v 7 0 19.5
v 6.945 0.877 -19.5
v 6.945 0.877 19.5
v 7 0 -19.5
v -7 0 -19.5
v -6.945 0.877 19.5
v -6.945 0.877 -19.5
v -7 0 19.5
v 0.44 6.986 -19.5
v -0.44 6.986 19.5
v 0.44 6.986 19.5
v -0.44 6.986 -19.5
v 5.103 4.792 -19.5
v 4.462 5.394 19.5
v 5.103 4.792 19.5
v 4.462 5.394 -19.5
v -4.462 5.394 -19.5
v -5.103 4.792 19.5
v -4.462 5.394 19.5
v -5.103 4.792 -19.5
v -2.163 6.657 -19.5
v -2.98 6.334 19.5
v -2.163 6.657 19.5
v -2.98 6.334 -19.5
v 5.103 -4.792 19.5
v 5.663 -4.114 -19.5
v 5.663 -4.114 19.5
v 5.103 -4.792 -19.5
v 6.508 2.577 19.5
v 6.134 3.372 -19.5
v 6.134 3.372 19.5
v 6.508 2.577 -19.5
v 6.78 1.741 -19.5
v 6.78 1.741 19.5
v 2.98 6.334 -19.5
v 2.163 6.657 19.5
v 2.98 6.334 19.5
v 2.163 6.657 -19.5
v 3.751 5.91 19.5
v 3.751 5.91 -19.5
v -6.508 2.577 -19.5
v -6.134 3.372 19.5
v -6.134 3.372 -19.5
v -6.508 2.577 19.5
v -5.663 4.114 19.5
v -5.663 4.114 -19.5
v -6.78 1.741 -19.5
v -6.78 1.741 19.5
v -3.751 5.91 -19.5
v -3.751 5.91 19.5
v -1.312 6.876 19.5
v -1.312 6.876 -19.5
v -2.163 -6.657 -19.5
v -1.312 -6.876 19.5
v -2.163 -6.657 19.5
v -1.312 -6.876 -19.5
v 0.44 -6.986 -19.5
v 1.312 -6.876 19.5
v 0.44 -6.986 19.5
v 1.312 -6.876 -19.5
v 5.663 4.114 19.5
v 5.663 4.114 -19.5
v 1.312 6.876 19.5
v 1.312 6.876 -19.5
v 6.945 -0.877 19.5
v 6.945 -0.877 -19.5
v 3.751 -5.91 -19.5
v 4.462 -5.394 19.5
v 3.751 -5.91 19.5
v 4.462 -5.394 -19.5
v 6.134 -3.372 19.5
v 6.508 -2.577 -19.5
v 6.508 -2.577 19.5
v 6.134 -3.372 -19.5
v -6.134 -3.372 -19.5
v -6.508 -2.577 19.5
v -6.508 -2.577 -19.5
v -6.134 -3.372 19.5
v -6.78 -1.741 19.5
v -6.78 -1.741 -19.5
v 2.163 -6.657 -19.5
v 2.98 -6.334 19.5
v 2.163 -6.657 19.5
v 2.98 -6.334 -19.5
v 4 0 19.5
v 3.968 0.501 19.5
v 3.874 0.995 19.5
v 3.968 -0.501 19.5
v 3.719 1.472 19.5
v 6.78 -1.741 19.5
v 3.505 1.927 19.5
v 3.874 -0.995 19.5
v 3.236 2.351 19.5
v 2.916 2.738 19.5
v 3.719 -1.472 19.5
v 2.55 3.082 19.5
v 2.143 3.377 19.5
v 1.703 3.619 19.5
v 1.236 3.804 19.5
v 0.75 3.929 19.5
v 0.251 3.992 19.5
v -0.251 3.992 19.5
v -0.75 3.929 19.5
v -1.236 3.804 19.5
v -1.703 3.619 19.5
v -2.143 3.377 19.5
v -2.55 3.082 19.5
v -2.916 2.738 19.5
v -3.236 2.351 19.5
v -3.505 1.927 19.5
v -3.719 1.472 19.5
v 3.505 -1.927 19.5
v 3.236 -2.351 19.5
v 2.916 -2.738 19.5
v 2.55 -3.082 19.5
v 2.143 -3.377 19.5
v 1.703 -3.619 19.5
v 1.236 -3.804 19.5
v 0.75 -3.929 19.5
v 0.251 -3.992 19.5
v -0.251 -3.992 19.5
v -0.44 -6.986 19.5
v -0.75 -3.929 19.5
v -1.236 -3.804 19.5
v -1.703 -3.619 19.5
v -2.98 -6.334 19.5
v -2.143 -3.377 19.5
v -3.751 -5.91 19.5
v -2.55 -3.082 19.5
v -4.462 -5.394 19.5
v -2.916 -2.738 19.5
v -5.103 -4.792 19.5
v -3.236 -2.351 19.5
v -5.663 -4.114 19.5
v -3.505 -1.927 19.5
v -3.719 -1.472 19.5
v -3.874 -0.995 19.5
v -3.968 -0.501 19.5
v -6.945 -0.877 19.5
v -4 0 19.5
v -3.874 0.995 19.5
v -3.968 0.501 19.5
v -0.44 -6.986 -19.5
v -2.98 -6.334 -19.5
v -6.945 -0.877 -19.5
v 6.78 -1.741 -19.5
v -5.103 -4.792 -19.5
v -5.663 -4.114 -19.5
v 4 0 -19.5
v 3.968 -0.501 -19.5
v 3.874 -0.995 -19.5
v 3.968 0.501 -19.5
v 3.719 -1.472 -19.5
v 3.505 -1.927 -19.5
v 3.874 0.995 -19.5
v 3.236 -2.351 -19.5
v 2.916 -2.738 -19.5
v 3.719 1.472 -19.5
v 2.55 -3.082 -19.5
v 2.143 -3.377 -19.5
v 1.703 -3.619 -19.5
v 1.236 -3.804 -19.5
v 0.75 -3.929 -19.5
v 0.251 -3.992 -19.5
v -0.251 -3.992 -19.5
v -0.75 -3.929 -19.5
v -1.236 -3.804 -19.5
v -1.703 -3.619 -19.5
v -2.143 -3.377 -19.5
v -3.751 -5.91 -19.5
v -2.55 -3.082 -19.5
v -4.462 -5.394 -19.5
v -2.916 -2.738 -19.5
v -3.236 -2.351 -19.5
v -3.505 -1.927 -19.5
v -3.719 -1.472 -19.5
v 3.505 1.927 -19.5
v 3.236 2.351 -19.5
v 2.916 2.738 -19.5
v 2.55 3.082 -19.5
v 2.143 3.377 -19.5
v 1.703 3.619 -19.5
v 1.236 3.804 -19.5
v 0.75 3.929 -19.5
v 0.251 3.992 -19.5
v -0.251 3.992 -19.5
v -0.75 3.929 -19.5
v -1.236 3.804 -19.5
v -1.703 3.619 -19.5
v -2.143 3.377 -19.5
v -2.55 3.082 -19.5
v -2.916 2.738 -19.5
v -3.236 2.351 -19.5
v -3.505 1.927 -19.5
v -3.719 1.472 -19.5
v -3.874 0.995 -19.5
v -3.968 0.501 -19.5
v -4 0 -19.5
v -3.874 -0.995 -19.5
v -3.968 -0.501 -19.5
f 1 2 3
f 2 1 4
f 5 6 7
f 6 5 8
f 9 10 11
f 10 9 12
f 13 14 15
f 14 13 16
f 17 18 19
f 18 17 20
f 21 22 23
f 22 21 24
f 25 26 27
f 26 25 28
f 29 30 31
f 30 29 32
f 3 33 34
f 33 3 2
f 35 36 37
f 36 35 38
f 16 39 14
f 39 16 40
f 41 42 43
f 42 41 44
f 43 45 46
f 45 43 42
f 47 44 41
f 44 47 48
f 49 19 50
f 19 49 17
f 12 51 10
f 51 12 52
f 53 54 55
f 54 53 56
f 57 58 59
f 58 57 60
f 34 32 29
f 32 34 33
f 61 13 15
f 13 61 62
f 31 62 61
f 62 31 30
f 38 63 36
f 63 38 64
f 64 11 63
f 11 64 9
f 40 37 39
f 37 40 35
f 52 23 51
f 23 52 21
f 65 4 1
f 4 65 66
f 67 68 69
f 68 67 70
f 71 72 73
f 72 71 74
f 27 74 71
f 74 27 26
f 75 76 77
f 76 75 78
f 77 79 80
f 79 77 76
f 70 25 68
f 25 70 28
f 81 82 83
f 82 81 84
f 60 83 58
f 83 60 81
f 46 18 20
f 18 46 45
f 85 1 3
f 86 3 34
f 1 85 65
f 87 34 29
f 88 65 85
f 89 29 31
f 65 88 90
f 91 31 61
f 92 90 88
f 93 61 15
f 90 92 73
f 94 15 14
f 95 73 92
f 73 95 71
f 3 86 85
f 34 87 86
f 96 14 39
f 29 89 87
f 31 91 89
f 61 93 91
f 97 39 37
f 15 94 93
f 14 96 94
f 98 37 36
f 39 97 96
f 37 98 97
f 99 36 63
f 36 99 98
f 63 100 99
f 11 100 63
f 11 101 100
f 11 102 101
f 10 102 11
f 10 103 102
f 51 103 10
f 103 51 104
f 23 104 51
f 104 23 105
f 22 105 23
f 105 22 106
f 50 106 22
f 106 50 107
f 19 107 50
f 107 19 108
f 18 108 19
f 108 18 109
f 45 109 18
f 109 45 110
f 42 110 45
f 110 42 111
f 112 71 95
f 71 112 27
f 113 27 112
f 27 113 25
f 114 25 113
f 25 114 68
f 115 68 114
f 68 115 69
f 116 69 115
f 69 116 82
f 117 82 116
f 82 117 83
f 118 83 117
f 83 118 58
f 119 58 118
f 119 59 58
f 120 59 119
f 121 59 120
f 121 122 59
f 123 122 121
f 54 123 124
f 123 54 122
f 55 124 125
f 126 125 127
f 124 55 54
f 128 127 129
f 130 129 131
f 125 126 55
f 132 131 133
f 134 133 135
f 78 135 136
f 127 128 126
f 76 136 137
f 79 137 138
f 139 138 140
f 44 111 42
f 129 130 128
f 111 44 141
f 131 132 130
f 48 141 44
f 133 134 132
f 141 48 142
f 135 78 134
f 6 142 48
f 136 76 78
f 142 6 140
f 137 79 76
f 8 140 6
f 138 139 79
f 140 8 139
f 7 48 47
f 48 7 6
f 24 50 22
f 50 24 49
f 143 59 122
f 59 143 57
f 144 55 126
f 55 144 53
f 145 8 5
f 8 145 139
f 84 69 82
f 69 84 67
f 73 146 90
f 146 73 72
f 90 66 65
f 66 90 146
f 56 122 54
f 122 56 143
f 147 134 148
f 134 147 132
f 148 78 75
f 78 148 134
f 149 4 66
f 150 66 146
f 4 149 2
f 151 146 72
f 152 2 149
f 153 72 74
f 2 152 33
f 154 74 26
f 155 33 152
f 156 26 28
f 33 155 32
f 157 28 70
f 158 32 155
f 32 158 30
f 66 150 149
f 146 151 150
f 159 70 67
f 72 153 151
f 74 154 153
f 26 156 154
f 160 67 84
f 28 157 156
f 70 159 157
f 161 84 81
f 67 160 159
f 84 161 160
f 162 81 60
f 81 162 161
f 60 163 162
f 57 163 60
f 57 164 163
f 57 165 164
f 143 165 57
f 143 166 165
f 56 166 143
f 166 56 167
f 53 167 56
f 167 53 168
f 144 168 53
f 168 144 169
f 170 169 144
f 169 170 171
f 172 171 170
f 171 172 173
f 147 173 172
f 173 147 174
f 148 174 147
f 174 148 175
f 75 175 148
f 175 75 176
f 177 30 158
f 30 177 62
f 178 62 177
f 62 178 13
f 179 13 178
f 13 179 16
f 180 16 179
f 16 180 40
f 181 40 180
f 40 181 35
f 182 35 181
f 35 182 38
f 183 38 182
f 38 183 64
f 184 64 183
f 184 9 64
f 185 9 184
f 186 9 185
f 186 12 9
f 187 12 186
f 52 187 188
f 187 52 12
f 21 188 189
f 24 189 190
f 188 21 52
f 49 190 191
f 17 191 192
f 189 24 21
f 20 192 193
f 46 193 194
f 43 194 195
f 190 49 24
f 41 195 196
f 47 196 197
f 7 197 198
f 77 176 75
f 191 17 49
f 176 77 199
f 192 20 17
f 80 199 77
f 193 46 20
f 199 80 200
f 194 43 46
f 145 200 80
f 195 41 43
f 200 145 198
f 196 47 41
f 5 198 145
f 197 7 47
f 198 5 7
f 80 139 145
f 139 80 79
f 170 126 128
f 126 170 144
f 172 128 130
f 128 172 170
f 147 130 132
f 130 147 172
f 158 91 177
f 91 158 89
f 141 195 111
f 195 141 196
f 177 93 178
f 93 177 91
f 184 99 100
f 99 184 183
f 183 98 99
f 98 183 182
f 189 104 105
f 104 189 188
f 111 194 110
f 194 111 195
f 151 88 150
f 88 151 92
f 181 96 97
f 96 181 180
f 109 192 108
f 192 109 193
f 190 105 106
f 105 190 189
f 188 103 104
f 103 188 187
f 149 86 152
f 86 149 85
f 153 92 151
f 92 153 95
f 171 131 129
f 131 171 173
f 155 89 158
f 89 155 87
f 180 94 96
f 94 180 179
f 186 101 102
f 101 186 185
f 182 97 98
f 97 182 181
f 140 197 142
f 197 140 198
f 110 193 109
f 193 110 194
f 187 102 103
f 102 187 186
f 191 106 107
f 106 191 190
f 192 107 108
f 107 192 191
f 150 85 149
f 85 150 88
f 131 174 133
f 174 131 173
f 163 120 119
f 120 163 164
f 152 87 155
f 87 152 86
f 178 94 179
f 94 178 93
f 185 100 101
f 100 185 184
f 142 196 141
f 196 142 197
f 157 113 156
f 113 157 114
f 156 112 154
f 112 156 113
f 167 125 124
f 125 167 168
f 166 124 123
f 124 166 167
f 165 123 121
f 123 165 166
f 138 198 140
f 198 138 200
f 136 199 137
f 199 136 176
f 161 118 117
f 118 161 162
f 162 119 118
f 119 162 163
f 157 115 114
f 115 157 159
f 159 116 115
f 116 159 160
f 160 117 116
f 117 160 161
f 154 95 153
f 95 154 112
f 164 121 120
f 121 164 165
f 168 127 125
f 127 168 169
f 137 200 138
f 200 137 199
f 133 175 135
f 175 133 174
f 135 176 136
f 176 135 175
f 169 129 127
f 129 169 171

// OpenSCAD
$fn = 50;


difference() {
	union() {
		translate(v = [0, 0, -19.5000000000]) {
			cylinder(h = 39, r = 7.0000000000);
		}
	}
	union() {
		translate(v = [0, 0, -100.0000000000]) {
			cylinder(h = 200, r = 4.0000000000);
		}
	}
}
